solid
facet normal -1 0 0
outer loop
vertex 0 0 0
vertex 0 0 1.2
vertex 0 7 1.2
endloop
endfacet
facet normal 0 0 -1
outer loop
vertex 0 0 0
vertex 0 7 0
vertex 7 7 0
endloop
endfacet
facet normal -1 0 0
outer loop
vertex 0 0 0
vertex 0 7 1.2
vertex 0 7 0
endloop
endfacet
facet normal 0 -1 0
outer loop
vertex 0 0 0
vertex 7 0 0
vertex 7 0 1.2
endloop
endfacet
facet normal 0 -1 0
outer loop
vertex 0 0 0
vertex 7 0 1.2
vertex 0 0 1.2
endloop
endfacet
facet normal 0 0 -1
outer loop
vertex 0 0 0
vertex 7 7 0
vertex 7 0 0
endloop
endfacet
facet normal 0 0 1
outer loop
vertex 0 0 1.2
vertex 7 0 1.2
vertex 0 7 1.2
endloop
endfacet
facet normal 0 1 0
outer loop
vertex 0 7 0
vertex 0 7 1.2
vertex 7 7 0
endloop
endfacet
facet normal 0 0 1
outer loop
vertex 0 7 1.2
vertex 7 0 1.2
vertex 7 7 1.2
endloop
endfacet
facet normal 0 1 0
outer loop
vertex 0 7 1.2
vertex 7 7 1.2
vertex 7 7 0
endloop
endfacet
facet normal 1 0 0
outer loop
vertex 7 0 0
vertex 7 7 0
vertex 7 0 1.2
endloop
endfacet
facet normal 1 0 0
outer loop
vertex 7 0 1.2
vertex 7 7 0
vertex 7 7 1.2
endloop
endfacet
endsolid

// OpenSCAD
/* Warning, this is a very basic generator with a lot of approximation 
input data : [TFBGA, 4HX, 7x7x1.2mm, 127, , A, C04-00372A]
generated by com.zoubworld.electronics.cad.model3d.Basic
Date : Sun Feb 15 10:50:48 CET 2026
*/

//body
color("black")
translate([0,0,0])
cube([7.0,7.0,1.2], center=false);
